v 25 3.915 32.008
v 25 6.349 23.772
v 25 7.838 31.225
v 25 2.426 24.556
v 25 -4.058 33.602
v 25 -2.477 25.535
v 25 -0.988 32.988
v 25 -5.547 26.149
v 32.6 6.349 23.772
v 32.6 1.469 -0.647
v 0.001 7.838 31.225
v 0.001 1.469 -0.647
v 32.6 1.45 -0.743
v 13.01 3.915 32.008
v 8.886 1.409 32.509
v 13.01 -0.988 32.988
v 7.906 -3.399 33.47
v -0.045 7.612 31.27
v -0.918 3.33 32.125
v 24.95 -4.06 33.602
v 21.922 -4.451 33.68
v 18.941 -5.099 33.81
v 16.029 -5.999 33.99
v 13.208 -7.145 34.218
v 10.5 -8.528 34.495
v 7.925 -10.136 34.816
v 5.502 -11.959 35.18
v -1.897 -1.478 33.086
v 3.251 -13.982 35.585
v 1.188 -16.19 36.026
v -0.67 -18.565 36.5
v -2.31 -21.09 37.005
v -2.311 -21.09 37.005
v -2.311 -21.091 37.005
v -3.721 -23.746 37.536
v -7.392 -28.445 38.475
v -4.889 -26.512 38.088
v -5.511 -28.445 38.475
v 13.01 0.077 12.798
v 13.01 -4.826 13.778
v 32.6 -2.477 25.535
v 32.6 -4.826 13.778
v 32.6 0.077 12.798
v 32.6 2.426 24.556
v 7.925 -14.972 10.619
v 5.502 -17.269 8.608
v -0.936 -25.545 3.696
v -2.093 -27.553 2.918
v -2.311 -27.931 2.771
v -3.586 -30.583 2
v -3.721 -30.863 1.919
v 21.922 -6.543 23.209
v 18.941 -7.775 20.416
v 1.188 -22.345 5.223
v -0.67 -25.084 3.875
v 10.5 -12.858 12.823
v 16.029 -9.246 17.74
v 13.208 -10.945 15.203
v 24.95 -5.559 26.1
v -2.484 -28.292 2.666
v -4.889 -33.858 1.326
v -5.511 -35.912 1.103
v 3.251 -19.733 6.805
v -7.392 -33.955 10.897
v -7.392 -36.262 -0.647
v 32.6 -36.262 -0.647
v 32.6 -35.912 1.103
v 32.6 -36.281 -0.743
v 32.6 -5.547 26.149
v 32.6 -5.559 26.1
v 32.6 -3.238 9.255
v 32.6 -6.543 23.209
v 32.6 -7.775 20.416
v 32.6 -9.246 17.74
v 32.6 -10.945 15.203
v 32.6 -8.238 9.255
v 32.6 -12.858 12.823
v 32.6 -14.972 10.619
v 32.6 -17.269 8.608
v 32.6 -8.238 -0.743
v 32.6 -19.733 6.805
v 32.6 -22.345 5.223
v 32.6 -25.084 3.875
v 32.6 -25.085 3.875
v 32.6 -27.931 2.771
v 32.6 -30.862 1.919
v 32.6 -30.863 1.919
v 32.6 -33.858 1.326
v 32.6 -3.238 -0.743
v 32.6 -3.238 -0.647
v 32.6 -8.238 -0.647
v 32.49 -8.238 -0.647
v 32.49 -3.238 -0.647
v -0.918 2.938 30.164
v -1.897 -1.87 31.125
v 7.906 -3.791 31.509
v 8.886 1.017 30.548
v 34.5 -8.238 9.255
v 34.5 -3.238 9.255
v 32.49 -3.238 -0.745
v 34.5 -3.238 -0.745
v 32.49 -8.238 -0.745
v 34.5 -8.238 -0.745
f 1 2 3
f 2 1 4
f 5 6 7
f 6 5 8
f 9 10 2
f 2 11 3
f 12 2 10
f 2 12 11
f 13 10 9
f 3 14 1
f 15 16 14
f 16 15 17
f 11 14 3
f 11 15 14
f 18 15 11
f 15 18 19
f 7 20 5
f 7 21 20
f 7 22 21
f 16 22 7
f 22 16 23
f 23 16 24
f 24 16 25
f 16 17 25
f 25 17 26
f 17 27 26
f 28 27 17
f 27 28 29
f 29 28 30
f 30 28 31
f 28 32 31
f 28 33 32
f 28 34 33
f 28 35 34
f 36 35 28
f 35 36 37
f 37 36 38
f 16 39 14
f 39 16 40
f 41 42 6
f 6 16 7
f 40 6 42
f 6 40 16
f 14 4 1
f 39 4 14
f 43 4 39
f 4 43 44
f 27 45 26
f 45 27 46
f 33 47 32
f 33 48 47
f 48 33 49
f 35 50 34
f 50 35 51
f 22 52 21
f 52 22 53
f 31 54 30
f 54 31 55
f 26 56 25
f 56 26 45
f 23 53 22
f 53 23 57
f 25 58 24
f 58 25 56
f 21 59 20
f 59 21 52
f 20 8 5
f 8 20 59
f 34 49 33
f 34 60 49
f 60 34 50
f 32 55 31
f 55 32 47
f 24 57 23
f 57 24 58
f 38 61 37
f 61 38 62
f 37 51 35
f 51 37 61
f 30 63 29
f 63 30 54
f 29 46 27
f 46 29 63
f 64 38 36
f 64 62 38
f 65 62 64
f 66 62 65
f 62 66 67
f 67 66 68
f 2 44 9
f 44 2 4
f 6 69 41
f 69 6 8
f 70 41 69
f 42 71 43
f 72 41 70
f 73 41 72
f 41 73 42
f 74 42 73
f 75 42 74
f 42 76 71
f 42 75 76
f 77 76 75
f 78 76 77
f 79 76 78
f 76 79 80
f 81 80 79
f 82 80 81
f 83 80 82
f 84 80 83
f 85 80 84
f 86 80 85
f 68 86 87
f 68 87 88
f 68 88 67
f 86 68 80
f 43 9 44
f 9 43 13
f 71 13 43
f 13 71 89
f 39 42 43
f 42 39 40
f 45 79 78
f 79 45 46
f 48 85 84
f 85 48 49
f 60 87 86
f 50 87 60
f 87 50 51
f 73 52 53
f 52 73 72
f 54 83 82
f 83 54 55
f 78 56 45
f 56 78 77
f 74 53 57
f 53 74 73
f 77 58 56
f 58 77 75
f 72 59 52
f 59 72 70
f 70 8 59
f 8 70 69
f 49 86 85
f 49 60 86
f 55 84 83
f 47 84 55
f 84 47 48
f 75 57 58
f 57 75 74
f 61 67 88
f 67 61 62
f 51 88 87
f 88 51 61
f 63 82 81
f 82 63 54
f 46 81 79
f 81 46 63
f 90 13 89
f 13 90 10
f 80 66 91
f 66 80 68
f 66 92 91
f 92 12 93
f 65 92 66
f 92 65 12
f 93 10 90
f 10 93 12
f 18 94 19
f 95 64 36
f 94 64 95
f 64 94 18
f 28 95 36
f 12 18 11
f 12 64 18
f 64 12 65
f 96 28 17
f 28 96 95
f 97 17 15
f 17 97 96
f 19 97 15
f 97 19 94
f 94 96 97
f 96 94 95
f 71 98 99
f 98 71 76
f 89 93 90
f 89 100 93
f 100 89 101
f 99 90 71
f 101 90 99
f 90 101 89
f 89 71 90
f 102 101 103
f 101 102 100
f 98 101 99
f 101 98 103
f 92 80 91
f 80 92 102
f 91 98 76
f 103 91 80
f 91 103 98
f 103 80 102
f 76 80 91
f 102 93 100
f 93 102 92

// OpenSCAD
$fa=5; $fs=0.1;

length=40;
pvc_thick=5;
angle=11.3;

translate([0,0,-8]) rotate([90-angle,0,0]){

difference(){
union(){

//1
difference(){
    
    union(){
        
            cube([25,length,37]); //из чего вырезается
            rotate([0,-angle,0]) cube([15,length,40]); // наклонная часть
    }
    
    
    union(){
        
            translate([13.01, -0.01, 4]) cube([12.01,length+0.02,pvc_thick]); //под лист ПВХ
            translate([28,length+0.01,47]) rotate([90,0,0]) cylinder(h=length+0.02, r=35); //скос
            translate([-10,-10,37]) cube ([61,length+11,10]); // срезать все сверху
    }
}

//2
translate([length-7.4, 7.4, 0])
rotate([0, 0, 90])
difference(){
    
    union(){
        
            cube([25,length,37]); //из чего вырезается
            rotate([0,-angle,0]) cube([15,length,40]); // наклонная часть
    }
    
    
    union(){
        
            translate([13.01, -0.01, 4]) cube([12.01,length+0.02,pvc_thick]); //под лист ПВХ
            translate([28,length+0.01,47]) rotate([90,0,0]) cylinder(h=length+0.02, r=35); //скос
            translate([-10,-10,37]) cube ([61,length+11,10]); // срезать все сверху
    }
}
}

union(){
        // срезать лишнее после пересечения
        translate([-7.4, -1.7, -5]) rotate([angle, 0, 0]) cube([length, 10, 60]);
        rotate([0,0, 90]) translate([-1, -1, -5]) rotate([-angle, 0, 0]) cube([length+5, 10, 60]);
    
        translate([-1.9, length-2, 9.5]) rotate ([0, 90-angle, 0]) cube([5,2.01,10]); // вырез
        
}


}

translate([length-5.5, 5.5, 9.5]) rotate ([0, 90-angle, 90]) cube([5,2.01,10]); // выступ
}
